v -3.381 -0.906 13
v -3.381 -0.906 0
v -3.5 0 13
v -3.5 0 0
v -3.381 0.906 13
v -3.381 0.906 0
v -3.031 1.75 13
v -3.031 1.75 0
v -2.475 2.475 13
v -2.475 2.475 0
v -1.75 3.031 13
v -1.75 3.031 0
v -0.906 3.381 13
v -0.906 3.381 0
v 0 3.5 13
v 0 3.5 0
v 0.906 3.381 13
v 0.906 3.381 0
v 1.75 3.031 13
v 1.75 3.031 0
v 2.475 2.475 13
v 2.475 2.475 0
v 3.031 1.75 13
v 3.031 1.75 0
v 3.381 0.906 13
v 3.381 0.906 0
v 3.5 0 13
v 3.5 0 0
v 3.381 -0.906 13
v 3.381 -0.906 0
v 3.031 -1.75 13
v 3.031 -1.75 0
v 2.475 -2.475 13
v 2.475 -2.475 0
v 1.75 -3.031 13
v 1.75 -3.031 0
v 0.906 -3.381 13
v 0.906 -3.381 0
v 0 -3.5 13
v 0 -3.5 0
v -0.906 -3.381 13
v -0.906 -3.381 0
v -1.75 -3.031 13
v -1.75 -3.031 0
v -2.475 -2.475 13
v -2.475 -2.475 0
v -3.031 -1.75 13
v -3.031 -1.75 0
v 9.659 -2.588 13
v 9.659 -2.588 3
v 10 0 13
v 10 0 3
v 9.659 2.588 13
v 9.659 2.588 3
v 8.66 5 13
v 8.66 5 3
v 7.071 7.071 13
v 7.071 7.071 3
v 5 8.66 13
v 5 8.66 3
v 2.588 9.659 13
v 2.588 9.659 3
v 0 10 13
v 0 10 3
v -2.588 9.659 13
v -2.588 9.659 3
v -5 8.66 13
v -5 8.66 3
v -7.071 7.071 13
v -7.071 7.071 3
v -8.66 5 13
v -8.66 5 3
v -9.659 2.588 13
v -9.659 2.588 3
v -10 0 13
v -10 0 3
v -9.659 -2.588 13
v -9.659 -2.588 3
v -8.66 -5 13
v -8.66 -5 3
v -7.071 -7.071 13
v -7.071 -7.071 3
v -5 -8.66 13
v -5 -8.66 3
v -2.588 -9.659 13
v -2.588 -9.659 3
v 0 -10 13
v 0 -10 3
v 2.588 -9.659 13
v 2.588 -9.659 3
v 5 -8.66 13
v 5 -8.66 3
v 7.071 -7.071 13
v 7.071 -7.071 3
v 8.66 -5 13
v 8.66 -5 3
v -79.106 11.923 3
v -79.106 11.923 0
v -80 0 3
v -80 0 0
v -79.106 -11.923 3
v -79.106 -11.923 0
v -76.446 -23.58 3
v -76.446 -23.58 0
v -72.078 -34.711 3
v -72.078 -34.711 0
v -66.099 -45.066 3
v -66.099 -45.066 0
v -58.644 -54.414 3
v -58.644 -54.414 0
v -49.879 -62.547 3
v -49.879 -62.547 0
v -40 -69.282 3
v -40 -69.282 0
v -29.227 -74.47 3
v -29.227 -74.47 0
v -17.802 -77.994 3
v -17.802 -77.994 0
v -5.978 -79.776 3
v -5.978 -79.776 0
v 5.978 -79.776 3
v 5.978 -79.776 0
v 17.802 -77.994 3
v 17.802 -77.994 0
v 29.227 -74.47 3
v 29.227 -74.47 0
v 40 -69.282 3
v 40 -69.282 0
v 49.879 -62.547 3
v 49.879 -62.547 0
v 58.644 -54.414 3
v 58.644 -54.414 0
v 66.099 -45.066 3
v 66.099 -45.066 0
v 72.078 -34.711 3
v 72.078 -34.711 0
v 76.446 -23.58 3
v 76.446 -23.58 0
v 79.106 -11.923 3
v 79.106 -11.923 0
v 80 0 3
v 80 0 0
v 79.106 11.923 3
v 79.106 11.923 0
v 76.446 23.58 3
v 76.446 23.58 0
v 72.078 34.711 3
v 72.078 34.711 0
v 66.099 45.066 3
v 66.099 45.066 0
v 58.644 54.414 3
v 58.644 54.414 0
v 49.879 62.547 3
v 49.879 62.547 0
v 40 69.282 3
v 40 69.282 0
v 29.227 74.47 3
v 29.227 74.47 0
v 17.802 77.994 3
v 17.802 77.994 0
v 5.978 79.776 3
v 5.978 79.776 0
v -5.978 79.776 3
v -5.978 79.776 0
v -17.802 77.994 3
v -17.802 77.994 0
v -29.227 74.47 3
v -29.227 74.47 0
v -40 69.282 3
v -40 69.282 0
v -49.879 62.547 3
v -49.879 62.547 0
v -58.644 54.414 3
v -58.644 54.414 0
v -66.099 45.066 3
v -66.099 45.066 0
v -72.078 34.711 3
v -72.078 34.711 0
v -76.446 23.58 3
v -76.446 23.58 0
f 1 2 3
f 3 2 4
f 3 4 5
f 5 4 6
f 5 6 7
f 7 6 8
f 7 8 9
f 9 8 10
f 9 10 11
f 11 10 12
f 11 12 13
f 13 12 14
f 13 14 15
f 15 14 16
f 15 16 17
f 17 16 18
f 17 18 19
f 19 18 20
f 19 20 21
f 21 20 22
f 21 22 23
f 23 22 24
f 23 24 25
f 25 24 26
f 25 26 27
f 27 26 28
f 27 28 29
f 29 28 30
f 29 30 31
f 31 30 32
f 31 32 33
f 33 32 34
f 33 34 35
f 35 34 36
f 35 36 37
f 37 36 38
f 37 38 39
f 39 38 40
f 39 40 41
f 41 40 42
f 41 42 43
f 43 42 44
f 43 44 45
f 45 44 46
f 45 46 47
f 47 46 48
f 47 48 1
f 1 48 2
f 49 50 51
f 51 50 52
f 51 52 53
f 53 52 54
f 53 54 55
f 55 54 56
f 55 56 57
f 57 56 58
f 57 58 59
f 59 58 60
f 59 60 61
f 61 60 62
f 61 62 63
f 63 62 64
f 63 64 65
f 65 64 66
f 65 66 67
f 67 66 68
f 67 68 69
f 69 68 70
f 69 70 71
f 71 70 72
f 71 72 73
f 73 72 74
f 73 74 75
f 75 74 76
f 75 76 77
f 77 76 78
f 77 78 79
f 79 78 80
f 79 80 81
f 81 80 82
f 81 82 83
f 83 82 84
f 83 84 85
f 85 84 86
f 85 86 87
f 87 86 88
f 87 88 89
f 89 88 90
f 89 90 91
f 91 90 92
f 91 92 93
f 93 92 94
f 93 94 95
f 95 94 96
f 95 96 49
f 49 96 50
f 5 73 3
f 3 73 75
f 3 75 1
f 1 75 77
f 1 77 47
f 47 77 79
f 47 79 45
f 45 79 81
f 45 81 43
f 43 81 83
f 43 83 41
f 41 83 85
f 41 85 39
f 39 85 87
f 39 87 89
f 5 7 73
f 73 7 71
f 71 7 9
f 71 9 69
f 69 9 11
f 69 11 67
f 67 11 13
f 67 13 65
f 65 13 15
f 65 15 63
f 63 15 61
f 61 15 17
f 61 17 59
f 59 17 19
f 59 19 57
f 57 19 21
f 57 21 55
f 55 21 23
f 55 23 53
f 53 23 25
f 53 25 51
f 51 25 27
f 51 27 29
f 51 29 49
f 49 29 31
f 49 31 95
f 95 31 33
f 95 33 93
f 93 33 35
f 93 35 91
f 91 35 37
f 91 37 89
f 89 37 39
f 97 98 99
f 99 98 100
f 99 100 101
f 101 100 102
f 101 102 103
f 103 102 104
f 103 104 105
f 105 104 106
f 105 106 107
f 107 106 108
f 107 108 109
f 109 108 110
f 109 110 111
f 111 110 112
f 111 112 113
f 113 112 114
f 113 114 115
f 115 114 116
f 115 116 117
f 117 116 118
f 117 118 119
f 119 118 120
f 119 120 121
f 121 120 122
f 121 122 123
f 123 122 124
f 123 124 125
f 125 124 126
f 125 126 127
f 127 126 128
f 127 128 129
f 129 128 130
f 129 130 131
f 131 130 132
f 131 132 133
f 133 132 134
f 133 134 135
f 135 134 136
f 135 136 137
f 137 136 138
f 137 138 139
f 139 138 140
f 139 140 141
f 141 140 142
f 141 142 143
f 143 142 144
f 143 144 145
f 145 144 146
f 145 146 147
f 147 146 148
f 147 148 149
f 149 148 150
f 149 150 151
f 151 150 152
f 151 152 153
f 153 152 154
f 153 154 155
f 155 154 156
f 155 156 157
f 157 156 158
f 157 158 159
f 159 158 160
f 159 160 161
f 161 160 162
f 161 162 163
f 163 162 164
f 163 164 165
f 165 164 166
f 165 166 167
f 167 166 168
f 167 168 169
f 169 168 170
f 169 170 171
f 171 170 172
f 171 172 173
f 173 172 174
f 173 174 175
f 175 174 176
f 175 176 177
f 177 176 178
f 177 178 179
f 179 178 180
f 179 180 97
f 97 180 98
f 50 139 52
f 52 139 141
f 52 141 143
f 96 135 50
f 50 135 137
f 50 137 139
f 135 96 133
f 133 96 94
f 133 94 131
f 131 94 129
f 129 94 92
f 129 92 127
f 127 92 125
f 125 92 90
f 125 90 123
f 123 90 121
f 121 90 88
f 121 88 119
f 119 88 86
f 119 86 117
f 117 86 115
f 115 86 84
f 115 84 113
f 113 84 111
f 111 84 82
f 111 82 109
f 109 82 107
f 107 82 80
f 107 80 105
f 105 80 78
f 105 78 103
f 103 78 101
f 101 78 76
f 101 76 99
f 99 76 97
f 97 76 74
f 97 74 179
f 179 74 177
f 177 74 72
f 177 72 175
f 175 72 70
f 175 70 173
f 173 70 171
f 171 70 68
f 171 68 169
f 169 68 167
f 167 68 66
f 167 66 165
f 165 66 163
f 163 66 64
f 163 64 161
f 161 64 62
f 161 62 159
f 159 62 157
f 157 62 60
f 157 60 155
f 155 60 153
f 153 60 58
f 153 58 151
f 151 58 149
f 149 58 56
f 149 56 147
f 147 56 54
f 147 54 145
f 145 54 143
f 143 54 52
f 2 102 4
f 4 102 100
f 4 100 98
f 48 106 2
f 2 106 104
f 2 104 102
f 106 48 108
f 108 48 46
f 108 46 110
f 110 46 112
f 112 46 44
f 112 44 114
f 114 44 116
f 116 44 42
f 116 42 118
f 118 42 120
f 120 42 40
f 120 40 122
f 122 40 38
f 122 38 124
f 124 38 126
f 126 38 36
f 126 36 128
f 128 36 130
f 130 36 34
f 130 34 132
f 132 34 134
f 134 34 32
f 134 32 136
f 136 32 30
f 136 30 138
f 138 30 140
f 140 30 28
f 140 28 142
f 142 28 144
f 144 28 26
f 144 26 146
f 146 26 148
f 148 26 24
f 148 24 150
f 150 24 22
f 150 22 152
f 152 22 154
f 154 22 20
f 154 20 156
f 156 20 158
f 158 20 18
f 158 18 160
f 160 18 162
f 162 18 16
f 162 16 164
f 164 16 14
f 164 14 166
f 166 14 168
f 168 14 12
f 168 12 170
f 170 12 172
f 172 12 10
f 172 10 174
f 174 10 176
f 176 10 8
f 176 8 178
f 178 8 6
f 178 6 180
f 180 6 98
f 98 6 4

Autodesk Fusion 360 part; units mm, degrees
sketch "スケッチ1" plane through (0, 0, 0) normal (0, 0, 1) x (1, 0, 0)
  circle A0 centre (0, 0) radius 80
  circle A1 centre (0, 0) radius 3.5
  dimension "d1" = 160
  dimension "d7" = 7
extrude "押し出し1" add sketch "スケッチ1" along normal blind 3 contours A0 | A1
sketch "スケッチ2" plane through (0, 0, 3) normal (0, 0, 1) x (-1, 0, 0)
  circle A0 centre (0, 0) radius 80
  circle A1 centre (0, 0) radius 10
  dimension "d4" = 20
extrude "押し出し2" add sketch "スケッチ2" along normal blind 10 contours A1
extrude "押し出し3" cut sketch "スケッチ1" along normal blind 13 contours A1
